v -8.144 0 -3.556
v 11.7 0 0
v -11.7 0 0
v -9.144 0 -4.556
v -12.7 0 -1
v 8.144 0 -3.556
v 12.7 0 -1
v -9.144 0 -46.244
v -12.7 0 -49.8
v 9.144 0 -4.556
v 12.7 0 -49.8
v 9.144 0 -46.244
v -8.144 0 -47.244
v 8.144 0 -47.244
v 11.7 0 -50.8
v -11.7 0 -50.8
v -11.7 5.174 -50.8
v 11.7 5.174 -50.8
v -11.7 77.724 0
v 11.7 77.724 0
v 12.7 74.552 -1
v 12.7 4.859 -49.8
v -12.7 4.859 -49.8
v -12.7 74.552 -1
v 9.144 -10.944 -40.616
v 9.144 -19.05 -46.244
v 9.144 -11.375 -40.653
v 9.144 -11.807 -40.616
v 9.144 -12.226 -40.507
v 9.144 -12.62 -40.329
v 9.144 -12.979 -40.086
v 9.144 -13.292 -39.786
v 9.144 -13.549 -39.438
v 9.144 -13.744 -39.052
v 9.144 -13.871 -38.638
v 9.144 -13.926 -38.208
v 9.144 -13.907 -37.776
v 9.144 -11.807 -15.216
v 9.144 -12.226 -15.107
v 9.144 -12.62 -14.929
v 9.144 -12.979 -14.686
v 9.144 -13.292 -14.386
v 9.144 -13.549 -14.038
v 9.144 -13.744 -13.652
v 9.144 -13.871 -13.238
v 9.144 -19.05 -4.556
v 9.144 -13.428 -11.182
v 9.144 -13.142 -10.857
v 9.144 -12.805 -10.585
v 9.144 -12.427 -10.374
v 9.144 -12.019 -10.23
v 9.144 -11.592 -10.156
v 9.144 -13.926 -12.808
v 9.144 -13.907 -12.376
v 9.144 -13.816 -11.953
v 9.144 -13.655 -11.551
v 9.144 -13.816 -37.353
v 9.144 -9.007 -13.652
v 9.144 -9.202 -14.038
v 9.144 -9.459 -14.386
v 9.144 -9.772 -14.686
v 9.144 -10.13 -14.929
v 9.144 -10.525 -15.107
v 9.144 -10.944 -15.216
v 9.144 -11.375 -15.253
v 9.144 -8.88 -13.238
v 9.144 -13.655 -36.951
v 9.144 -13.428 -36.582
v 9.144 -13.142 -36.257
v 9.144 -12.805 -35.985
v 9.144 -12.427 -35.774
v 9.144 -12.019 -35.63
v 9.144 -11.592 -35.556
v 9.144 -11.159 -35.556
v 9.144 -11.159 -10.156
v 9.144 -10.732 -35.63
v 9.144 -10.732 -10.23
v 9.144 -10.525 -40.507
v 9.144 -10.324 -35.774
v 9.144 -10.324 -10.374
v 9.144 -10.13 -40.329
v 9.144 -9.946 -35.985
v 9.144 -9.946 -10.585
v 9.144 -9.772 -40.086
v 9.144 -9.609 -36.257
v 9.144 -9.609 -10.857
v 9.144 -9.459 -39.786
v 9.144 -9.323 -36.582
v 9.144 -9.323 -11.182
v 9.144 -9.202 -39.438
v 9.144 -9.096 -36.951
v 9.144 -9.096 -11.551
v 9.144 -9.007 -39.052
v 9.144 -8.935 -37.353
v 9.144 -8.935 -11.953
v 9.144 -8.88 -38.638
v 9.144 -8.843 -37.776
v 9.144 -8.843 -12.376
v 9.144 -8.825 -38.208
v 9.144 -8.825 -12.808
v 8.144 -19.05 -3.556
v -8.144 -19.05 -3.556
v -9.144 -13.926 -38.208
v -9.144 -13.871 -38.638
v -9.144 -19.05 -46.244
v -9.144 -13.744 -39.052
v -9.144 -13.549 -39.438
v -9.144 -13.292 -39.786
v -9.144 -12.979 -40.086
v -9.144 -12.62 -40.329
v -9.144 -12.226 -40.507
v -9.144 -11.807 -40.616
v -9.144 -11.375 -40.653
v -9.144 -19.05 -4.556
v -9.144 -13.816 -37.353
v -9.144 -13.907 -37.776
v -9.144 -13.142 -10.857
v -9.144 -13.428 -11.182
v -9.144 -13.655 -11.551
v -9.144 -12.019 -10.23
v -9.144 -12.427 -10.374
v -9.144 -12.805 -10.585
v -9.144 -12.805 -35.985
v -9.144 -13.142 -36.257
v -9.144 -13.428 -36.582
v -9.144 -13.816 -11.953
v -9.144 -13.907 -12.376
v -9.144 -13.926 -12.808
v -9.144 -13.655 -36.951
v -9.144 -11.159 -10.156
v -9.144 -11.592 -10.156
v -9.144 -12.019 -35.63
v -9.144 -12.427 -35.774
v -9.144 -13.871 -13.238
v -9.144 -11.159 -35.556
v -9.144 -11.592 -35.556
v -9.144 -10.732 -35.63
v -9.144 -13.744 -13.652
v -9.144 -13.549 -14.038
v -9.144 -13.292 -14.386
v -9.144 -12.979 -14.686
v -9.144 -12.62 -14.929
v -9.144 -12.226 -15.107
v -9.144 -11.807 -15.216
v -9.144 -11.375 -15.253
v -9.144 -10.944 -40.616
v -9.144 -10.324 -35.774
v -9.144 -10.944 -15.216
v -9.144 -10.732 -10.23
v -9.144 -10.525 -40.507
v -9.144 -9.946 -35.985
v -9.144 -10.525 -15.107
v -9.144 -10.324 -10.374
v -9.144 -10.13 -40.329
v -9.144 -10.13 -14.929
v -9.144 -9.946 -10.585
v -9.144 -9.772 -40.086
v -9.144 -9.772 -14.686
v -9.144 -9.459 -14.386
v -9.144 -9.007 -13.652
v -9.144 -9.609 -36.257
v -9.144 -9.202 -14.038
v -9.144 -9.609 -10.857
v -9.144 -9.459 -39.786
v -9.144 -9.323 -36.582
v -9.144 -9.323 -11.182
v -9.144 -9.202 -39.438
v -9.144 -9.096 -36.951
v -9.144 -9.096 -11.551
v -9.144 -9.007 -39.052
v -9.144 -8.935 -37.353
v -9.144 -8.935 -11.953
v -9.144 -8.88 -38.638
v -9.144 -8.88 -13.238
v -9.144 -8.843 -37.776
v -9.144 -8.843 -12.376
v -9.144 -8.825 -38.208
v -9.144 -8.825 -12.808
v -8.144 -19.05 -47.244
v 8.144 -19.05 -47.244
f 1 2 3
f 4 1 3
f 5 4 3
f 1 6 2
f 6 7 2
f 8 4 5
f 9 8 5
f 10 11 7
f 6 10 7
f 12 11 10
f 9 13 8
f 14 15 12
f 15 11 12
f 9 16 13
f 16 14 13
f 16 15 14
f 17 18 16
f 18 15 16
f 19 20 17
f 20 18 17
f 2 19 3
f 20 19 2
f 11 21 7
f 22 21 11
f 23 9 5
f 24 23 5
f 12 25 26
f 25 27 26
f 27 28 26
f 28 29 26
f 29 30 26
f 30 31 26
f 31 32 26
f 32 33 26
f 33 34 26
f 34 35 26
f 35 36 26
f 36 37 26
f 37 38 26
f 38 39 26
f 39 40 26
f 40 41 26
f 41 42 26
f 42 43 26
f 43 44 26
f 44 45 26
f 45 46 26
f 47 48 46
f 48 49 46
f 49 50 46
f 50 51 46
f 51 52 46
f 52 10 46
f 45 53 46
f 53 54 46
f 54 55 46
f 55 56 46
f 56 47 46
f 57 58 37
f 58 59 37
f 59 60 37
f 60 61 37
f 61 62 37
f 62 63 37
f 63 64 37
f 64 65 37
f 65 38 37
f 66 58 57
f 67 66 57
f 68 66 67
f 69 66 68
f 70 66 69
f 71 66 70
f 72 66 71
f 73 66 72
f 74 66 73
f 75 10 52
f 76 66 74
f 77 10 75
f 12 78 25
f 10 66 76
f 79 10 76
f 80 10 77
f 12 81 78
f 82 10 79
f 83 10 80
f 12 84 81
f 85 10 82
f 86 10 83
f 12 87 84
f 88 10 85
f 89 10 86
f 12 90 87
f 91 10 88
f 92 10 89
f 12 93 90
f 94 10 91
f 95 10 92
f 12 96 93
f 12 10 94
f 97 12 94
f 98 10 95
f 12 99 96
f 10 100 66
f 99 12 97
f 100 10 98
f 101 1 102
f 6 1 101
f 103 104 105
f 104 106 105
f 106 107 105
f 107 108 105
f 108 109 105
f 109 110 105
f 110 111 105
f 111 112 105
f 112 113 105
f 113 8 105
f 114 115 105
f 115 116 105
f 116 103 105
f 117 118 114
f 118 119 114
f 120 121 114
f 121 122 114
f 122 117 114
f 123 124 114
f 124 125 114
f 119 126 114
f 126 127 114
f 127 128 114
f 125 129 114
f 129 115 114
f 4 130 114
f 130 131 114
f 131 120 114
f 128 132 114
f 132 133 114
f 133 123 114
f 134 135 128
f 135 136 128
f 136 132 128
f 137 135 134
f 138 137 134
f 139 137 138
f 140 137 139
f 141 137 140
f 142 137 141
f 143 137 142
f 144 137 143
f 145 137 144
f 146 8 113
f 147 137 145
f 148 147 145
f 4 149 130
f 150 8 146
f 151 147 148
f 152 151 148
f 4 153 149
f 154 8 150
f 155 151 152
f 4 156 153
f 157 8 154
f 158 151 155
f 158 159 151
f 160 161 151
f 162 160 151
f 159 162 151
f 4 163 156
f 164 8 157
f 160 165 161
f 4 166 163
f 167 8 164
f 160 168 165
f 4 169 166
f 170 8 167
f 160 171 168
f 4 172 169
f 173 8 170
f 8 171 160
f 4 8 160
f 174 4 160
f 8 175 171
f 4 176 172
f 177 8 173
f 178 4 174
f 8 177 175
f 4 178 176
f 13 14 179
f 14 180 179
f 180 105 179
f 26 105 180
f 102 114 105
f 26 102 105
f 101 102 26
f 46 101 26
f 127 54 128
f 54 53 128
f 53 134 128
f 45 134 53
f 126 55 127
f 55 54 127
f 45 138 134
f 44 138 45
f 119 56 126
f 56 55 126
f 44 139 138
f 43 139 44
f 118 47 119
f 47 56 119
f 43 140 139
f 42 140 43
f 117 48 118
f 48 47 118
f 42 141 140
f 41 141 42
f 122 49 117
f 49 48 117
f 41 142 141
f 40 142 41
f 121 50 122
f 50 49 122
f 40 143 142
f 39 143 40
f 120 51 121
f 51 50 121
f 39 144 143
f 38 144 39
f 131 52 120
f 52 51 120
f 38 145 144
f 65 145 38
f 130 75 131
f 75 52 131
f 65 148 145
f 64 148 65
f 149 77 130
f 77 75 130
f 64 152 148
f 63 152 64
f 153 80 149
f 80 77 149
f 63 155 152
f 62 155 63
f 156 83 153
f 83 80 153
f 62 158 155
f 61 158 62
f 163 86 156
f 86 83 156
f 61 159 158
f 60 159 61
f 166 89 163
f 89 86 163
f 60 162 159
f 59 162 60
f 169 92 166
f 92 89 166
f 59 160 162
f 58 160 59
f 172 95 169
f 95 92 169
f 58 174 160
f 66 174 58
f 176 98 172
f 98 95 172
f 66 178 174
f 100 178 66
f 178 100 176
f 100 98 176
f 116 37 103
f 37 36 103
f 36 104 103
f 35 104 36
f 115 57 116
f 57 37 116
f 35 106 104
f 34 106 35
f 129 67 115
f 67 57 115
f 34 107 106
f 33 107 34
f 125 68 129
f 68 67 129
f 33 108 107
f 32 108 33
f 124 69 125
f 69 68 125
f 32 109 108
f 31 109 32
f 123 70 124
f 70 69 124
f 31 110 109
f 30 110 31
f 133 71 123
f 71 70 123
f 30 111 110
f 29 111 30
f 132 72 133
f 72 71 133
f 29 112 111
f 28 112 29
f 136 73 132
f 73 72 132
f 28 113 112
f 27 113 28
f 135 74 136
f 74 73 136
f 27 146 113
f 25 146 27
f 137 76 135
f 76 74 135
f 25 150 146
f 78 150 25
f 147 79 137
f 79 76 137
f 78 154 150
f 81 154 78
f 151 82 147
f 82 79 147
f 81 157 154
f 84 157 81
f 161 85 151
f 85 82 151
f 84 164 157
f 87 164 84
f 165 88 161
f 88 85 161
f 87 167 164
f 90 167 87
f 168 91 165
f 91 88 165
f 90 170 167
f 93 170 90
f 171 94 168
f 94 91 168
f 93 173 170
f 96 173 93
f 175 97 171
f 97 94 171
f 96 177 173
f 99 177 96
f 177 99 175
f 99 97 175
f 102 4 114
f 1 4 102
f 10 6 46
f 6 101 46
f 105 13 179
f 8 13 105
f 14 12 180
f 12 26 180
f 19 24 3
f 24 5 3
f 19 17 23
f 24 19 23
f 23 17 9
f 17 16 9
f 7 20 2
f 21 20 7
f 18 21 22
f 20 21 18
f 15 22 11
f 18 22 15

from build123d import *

# Parameters (mm, degrees)
BOSS_EXTRUDE1_DEPTH = 12.7
SKETCH2_W           = 18.288
SKETCH2_H           = 43.688
BOSS_EXTRUDE2_DEPTH = 19.05
SKETCH3_R           = 2.5527
CUT_EXTRUDE1_DEPTH  = 22.844
CHAMFER1_SIZE       = 1


with BuildPart() as part:
    # Sketch1 → Boss-Extrude1 (new body, symmetric)
    with BuildSketch(Plane(origin=(0, 0, 0), x_dir=(0, 0, -1), z_dir=(1, 0, 0))):
        Polygon((0, 0), (0, 77.724), (50.8, 5.174081258), (50.8, 0), align=None)
    extrude(amount=BOSS_EXTRUDE1_DEPTH, both=True)

    # Sketch2 → Boss-Extrude2 (add)
    with BuildSketch(Plane.XZ):
        with Locations((0, -25.4)):
            Rectangle(SKETCH2_W, SKETCH2_H)
    extrude(amount=BOSS_EXTRUDE2_DEPTH)

    # Sketch3 → Cut-Extrude1 (cut, through all)
    with BuildSketch(Plane(origin=(9.144, 0, 0), x_dir=(0, 0, -1), z_dir=(1, 0, 0))):
        with Locations((38.1, -11.375365521)):
            Circle(SKETCH3_R)
        with Locations((12.7, -11.375365521)):
            Circle(SKETCH3_R)
    extrude(amount=-CUT_EXTRUDE1_DEPTH, mode=Mode.SUBTRACT)

    # Chamfer1
    chamfer1_edges = [part.edges().sort_by_distance(p)[0] for p in [
        (12.7, 41.449040629, -25.4),
        (9.144, -9.525, -47.244),
        (9.144, -9.525, -3.556),
        (-9.144, -9.525, -3.556),
        (12.7, 38.862, 0),
        (-9.144, -9.525, -47.244),
        (-12.7, 38.862, 0),
        (-12.7, 41.449040629, -25.4),
        (-12.7, 2.587040629, -50.8),
        (12.7, 2.587040629, -50.8),
    ]]
    chamfer(chamfer1_edges, length=CHAMFER1_SIZE)


solid = part.part
